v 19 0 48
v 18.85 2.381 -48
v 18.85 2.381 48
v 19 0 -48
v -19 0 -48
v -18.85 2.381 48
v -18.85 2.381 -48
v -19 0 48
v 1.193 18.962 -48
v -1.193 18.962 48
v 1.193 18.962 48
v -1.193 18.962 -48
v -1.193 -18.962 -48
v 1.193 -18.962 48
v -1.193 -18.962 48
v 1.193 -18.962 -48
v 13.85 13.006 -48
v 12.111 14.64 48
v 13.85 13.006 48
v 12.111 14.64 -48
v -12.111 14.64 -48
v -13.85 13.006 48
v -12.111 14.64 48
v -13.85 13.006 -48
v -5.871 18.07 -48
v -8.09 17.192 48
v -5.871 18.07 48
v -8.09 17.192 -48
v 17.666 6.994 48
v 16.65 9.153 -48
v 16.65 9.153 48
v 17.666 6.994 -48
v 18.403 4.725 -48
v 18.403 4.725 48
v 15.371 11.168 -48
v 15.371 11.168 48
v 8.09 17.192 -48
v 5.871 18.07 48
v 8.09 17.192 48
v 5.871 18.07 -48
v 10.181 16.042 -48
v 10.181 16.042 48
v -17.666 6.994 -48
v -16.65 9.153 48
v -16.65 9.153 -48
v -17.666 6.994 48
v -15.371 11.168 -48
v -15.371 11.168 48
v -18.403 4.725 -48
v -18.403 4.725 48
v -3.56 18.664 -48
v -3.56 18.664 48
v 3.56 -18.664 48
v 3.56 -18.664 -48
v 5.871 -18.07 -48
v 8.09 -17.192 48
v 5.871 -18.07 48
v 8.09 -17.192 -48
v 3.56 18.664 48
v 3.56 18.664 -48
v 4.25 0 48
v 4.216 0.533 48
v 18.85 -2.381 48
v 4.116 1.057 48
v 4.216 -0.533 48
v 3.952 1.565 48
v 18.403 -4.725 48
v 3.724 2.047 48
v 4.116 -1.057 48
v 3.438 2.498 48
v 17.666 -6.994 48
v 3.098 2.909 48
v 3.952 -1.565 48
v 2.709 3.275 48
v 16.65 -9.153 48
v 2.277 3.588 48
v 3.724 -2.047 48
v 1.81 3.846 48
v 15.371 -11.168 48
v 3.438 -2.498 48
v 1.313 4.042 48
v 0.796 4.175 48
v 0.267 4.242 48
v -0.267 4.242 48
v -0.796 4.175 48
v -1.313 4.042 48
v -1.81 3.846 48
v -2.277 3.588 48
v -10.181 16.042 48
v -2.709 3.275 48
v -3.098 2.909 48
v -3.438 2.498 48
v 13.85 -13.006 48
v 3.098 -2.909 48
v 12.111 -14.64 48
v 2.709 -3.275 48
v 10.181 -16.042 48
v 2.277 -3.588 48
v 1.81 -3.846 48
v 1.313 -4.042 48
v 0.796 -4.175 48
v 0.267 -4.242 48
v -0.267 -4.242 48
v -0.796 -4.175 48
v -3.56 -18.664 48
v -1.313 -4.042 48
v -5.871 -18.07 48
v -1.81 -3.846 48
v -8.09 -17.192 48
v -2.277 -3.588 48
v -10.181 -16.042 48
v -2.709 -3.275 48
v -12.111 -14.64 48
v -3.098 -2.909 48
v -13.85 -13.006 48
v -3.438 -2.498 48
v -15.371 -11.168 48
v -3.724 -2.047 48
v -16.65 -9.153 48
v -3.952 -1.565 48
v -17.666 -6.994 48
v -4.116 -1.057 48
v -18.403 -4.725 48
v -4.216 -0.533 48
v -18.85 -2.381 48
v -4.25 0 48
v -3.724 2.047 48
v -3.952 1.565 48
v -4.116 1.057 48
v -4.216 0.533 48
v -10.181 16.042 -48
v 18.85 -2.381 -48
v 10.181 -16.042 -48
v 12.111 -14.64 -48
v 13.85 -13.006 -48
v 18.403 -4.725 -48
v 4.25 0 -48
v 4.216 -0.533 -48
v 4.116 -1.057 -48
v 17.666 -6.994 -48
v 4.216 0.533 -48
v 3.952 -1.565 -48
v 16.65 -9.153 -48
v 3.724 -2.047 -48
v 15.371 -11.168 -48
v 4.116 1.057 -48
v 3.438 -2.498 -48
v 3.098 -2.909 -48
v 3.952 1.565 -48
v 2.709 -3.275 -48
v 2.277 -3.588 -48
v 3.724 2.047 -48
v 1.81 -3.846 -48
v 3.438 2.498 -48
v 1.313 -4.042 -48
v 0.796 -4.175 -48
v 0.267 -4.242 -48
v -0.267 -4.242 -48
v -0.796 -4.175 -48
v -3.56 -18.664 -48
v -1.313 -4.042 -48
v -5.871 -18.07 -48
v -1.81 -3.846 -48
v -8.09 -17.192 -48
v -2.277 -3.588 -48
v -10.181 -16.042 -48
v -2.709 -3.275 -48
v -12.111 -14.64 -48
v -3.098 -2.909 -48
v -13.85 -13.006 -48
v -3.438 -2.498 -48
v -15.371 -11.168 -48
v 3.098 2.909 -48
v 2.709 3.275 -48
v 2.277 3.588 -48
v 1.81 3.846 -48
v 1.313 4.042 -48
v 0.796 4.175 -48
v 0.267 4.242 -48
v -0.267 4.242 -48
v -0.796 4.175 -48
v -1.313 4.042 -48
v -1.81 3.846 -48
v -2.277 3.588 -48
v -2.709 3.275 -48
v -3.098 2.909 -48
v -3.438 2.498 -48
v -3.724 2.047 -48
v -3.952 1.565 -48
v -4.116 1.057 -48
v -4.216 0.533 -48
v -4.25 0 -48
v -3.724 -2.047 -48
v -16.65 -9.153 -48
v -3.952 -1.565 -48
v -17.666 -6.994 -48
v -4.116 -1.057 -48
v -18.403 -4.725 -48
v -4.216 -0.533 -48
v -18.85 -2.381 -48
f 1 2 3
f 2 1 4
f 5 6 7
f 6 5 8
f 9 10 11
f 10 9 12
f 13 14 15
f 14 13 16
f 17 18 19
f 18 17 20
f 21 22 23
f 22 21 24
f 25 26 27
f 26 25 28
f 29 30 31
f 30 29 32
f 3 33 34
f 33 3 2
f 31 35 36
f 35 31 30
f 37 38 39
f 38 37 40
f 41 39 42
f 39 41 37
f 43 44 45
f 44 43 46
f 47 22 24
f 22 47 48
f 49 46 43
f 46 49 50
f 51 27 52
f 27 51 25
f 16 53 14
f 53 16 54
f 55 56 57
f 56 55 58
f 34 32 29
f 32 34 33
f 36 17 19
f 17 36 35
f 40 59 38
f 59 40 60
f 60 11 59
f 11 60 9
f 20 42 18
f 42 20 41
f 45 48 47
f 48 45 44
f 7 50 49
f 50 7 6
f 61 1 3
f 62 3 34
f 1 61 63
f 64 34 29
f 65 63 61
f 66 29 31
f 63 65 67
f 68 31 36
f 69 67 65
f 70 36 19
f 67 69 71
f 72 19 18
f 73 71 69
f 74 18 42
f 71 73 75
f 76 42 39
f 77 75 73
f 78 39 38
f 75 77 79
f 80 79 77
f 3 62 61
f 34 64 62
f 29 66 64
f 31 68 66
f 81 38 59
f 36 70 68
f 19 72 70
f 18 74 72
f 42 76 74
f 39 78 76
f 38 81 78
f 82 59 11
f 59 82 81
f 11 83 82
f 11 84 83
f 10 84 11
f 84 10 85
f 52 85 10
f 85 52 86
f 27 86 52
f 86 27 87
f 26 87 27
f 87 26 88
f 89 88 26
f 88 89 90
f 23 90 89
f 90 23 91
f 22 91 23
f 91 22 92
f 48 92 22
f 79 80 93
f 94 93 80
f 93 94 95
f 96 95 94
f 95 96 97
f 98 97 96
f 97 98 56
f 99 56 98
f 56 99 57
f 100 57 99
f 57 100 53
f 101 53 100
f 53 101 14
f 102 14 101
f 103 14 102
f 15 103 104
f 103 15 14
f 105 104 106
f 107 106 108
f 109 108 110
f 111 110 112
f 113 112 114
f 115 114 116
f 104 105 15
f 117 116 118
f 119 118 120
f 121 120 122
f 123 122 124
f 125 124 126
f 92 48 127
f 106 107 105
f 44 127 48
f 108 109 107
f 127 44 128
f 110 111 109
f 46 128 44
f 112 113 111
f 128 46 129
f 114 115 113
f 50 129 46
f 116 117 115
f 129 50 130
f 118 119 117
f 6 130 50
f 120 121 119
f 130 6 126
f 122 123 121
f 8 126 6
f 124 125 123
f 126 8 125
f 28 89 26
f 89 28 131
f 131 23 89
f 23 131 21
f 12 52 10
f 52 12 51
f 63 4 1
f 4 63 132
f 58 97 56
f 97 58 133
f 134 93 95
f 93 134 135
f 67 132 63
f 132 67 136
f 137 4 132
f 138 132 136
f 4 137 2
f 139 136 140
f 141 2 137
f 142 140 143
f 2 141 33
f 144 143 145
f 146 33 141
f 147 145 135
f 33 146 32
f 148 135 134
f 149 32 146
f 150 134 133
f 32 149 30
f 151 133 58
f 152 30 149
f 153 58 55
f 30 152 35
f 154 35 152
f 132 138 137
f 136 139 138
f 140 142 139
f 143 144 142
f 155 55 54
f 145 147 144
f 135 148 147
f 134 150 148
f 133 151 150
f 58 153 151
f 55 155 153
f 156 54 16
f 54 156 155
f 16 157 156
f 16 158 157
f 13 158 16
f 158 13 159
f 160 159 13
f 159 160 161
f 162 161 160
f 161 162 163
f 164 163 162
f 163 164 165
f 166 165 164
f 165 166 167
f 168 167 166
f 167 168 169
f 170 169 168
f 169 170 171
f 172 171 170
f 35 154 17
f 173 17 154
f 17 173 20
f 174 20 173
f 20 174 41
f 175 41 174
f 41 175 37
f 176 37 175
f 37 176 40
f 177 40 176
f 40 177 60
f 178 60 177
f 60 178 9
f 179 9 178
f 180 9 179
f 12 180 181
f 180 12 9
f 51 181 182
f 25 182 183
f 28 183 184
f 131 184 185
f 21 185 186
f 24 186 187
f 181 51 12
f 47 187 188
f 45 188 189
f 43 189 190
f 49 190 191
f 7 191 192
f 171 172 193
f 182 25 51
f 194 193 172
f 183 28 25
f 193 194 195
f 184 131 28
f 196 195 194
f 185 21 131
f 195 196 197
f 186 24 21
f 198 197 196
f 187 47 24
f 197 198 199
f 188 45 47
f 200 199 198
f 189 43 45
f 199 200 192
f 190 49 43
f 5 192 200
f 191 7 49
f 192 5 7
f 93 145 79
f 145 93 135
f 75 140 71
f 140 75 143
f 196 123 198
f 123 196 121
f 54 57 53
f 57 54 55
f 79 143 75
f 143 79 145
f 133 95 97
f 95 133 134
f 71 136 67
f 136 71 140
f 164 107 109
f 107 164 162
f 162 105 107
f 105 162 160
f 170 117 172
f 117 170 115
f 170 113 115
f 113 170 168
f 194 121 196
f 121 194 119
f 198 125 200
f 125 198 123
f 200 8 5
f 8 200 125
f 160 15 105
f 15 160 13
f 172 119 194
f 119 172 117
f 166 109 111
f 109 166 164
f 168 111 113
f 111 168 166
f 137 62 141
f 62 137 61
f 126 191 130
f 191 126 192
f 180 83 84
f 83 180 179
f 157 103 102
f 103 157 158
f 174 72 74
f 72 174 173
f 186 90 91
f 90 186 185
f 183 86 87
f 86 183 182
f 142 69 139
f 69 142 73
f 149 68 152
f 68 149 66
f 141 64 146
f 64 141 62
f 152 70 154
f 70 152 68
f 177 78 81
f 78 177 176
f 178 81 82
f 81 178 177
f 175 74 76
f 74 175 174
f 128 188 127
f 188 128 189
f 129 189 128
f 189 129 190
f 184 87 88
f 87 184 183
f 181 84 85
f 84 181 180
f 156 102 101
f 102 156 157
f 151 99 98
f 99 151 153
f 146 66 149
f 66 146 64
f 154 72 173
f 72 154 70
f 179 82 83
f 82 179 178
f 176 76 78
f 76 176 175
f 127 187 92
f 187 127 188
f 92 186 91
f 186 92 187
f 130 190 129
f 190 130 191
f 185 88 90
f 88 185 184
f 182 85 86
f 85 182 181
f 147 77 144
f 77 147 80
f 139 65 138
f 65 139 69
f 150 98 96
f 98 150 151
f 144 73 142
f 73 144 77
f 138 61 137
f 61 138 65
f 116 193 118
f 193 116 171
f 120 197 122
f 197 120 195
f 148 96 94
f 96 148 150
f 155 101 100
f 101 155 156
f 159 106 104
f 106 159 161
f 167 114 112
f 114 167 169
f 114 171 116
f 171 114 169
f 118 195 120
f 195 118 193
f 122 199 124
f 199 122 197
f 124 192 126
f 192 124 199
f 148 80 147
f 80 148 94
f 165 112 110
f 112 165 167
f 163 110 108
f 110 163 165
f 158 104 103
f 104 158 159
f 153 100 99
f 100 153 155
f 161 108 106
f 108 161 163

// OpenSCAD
$fn = 50;


difference() {
	union() {
		translate(v = [0, 0, -48.0000000000]) {
			cylinder(h = 96, r = 19.0000000000);
		}
	}
	union() {
		translate(v = [0, 0, -100.0000000000]) {
			cylinder(h = 200, r = 4.2500000000);
		}
	}
}
